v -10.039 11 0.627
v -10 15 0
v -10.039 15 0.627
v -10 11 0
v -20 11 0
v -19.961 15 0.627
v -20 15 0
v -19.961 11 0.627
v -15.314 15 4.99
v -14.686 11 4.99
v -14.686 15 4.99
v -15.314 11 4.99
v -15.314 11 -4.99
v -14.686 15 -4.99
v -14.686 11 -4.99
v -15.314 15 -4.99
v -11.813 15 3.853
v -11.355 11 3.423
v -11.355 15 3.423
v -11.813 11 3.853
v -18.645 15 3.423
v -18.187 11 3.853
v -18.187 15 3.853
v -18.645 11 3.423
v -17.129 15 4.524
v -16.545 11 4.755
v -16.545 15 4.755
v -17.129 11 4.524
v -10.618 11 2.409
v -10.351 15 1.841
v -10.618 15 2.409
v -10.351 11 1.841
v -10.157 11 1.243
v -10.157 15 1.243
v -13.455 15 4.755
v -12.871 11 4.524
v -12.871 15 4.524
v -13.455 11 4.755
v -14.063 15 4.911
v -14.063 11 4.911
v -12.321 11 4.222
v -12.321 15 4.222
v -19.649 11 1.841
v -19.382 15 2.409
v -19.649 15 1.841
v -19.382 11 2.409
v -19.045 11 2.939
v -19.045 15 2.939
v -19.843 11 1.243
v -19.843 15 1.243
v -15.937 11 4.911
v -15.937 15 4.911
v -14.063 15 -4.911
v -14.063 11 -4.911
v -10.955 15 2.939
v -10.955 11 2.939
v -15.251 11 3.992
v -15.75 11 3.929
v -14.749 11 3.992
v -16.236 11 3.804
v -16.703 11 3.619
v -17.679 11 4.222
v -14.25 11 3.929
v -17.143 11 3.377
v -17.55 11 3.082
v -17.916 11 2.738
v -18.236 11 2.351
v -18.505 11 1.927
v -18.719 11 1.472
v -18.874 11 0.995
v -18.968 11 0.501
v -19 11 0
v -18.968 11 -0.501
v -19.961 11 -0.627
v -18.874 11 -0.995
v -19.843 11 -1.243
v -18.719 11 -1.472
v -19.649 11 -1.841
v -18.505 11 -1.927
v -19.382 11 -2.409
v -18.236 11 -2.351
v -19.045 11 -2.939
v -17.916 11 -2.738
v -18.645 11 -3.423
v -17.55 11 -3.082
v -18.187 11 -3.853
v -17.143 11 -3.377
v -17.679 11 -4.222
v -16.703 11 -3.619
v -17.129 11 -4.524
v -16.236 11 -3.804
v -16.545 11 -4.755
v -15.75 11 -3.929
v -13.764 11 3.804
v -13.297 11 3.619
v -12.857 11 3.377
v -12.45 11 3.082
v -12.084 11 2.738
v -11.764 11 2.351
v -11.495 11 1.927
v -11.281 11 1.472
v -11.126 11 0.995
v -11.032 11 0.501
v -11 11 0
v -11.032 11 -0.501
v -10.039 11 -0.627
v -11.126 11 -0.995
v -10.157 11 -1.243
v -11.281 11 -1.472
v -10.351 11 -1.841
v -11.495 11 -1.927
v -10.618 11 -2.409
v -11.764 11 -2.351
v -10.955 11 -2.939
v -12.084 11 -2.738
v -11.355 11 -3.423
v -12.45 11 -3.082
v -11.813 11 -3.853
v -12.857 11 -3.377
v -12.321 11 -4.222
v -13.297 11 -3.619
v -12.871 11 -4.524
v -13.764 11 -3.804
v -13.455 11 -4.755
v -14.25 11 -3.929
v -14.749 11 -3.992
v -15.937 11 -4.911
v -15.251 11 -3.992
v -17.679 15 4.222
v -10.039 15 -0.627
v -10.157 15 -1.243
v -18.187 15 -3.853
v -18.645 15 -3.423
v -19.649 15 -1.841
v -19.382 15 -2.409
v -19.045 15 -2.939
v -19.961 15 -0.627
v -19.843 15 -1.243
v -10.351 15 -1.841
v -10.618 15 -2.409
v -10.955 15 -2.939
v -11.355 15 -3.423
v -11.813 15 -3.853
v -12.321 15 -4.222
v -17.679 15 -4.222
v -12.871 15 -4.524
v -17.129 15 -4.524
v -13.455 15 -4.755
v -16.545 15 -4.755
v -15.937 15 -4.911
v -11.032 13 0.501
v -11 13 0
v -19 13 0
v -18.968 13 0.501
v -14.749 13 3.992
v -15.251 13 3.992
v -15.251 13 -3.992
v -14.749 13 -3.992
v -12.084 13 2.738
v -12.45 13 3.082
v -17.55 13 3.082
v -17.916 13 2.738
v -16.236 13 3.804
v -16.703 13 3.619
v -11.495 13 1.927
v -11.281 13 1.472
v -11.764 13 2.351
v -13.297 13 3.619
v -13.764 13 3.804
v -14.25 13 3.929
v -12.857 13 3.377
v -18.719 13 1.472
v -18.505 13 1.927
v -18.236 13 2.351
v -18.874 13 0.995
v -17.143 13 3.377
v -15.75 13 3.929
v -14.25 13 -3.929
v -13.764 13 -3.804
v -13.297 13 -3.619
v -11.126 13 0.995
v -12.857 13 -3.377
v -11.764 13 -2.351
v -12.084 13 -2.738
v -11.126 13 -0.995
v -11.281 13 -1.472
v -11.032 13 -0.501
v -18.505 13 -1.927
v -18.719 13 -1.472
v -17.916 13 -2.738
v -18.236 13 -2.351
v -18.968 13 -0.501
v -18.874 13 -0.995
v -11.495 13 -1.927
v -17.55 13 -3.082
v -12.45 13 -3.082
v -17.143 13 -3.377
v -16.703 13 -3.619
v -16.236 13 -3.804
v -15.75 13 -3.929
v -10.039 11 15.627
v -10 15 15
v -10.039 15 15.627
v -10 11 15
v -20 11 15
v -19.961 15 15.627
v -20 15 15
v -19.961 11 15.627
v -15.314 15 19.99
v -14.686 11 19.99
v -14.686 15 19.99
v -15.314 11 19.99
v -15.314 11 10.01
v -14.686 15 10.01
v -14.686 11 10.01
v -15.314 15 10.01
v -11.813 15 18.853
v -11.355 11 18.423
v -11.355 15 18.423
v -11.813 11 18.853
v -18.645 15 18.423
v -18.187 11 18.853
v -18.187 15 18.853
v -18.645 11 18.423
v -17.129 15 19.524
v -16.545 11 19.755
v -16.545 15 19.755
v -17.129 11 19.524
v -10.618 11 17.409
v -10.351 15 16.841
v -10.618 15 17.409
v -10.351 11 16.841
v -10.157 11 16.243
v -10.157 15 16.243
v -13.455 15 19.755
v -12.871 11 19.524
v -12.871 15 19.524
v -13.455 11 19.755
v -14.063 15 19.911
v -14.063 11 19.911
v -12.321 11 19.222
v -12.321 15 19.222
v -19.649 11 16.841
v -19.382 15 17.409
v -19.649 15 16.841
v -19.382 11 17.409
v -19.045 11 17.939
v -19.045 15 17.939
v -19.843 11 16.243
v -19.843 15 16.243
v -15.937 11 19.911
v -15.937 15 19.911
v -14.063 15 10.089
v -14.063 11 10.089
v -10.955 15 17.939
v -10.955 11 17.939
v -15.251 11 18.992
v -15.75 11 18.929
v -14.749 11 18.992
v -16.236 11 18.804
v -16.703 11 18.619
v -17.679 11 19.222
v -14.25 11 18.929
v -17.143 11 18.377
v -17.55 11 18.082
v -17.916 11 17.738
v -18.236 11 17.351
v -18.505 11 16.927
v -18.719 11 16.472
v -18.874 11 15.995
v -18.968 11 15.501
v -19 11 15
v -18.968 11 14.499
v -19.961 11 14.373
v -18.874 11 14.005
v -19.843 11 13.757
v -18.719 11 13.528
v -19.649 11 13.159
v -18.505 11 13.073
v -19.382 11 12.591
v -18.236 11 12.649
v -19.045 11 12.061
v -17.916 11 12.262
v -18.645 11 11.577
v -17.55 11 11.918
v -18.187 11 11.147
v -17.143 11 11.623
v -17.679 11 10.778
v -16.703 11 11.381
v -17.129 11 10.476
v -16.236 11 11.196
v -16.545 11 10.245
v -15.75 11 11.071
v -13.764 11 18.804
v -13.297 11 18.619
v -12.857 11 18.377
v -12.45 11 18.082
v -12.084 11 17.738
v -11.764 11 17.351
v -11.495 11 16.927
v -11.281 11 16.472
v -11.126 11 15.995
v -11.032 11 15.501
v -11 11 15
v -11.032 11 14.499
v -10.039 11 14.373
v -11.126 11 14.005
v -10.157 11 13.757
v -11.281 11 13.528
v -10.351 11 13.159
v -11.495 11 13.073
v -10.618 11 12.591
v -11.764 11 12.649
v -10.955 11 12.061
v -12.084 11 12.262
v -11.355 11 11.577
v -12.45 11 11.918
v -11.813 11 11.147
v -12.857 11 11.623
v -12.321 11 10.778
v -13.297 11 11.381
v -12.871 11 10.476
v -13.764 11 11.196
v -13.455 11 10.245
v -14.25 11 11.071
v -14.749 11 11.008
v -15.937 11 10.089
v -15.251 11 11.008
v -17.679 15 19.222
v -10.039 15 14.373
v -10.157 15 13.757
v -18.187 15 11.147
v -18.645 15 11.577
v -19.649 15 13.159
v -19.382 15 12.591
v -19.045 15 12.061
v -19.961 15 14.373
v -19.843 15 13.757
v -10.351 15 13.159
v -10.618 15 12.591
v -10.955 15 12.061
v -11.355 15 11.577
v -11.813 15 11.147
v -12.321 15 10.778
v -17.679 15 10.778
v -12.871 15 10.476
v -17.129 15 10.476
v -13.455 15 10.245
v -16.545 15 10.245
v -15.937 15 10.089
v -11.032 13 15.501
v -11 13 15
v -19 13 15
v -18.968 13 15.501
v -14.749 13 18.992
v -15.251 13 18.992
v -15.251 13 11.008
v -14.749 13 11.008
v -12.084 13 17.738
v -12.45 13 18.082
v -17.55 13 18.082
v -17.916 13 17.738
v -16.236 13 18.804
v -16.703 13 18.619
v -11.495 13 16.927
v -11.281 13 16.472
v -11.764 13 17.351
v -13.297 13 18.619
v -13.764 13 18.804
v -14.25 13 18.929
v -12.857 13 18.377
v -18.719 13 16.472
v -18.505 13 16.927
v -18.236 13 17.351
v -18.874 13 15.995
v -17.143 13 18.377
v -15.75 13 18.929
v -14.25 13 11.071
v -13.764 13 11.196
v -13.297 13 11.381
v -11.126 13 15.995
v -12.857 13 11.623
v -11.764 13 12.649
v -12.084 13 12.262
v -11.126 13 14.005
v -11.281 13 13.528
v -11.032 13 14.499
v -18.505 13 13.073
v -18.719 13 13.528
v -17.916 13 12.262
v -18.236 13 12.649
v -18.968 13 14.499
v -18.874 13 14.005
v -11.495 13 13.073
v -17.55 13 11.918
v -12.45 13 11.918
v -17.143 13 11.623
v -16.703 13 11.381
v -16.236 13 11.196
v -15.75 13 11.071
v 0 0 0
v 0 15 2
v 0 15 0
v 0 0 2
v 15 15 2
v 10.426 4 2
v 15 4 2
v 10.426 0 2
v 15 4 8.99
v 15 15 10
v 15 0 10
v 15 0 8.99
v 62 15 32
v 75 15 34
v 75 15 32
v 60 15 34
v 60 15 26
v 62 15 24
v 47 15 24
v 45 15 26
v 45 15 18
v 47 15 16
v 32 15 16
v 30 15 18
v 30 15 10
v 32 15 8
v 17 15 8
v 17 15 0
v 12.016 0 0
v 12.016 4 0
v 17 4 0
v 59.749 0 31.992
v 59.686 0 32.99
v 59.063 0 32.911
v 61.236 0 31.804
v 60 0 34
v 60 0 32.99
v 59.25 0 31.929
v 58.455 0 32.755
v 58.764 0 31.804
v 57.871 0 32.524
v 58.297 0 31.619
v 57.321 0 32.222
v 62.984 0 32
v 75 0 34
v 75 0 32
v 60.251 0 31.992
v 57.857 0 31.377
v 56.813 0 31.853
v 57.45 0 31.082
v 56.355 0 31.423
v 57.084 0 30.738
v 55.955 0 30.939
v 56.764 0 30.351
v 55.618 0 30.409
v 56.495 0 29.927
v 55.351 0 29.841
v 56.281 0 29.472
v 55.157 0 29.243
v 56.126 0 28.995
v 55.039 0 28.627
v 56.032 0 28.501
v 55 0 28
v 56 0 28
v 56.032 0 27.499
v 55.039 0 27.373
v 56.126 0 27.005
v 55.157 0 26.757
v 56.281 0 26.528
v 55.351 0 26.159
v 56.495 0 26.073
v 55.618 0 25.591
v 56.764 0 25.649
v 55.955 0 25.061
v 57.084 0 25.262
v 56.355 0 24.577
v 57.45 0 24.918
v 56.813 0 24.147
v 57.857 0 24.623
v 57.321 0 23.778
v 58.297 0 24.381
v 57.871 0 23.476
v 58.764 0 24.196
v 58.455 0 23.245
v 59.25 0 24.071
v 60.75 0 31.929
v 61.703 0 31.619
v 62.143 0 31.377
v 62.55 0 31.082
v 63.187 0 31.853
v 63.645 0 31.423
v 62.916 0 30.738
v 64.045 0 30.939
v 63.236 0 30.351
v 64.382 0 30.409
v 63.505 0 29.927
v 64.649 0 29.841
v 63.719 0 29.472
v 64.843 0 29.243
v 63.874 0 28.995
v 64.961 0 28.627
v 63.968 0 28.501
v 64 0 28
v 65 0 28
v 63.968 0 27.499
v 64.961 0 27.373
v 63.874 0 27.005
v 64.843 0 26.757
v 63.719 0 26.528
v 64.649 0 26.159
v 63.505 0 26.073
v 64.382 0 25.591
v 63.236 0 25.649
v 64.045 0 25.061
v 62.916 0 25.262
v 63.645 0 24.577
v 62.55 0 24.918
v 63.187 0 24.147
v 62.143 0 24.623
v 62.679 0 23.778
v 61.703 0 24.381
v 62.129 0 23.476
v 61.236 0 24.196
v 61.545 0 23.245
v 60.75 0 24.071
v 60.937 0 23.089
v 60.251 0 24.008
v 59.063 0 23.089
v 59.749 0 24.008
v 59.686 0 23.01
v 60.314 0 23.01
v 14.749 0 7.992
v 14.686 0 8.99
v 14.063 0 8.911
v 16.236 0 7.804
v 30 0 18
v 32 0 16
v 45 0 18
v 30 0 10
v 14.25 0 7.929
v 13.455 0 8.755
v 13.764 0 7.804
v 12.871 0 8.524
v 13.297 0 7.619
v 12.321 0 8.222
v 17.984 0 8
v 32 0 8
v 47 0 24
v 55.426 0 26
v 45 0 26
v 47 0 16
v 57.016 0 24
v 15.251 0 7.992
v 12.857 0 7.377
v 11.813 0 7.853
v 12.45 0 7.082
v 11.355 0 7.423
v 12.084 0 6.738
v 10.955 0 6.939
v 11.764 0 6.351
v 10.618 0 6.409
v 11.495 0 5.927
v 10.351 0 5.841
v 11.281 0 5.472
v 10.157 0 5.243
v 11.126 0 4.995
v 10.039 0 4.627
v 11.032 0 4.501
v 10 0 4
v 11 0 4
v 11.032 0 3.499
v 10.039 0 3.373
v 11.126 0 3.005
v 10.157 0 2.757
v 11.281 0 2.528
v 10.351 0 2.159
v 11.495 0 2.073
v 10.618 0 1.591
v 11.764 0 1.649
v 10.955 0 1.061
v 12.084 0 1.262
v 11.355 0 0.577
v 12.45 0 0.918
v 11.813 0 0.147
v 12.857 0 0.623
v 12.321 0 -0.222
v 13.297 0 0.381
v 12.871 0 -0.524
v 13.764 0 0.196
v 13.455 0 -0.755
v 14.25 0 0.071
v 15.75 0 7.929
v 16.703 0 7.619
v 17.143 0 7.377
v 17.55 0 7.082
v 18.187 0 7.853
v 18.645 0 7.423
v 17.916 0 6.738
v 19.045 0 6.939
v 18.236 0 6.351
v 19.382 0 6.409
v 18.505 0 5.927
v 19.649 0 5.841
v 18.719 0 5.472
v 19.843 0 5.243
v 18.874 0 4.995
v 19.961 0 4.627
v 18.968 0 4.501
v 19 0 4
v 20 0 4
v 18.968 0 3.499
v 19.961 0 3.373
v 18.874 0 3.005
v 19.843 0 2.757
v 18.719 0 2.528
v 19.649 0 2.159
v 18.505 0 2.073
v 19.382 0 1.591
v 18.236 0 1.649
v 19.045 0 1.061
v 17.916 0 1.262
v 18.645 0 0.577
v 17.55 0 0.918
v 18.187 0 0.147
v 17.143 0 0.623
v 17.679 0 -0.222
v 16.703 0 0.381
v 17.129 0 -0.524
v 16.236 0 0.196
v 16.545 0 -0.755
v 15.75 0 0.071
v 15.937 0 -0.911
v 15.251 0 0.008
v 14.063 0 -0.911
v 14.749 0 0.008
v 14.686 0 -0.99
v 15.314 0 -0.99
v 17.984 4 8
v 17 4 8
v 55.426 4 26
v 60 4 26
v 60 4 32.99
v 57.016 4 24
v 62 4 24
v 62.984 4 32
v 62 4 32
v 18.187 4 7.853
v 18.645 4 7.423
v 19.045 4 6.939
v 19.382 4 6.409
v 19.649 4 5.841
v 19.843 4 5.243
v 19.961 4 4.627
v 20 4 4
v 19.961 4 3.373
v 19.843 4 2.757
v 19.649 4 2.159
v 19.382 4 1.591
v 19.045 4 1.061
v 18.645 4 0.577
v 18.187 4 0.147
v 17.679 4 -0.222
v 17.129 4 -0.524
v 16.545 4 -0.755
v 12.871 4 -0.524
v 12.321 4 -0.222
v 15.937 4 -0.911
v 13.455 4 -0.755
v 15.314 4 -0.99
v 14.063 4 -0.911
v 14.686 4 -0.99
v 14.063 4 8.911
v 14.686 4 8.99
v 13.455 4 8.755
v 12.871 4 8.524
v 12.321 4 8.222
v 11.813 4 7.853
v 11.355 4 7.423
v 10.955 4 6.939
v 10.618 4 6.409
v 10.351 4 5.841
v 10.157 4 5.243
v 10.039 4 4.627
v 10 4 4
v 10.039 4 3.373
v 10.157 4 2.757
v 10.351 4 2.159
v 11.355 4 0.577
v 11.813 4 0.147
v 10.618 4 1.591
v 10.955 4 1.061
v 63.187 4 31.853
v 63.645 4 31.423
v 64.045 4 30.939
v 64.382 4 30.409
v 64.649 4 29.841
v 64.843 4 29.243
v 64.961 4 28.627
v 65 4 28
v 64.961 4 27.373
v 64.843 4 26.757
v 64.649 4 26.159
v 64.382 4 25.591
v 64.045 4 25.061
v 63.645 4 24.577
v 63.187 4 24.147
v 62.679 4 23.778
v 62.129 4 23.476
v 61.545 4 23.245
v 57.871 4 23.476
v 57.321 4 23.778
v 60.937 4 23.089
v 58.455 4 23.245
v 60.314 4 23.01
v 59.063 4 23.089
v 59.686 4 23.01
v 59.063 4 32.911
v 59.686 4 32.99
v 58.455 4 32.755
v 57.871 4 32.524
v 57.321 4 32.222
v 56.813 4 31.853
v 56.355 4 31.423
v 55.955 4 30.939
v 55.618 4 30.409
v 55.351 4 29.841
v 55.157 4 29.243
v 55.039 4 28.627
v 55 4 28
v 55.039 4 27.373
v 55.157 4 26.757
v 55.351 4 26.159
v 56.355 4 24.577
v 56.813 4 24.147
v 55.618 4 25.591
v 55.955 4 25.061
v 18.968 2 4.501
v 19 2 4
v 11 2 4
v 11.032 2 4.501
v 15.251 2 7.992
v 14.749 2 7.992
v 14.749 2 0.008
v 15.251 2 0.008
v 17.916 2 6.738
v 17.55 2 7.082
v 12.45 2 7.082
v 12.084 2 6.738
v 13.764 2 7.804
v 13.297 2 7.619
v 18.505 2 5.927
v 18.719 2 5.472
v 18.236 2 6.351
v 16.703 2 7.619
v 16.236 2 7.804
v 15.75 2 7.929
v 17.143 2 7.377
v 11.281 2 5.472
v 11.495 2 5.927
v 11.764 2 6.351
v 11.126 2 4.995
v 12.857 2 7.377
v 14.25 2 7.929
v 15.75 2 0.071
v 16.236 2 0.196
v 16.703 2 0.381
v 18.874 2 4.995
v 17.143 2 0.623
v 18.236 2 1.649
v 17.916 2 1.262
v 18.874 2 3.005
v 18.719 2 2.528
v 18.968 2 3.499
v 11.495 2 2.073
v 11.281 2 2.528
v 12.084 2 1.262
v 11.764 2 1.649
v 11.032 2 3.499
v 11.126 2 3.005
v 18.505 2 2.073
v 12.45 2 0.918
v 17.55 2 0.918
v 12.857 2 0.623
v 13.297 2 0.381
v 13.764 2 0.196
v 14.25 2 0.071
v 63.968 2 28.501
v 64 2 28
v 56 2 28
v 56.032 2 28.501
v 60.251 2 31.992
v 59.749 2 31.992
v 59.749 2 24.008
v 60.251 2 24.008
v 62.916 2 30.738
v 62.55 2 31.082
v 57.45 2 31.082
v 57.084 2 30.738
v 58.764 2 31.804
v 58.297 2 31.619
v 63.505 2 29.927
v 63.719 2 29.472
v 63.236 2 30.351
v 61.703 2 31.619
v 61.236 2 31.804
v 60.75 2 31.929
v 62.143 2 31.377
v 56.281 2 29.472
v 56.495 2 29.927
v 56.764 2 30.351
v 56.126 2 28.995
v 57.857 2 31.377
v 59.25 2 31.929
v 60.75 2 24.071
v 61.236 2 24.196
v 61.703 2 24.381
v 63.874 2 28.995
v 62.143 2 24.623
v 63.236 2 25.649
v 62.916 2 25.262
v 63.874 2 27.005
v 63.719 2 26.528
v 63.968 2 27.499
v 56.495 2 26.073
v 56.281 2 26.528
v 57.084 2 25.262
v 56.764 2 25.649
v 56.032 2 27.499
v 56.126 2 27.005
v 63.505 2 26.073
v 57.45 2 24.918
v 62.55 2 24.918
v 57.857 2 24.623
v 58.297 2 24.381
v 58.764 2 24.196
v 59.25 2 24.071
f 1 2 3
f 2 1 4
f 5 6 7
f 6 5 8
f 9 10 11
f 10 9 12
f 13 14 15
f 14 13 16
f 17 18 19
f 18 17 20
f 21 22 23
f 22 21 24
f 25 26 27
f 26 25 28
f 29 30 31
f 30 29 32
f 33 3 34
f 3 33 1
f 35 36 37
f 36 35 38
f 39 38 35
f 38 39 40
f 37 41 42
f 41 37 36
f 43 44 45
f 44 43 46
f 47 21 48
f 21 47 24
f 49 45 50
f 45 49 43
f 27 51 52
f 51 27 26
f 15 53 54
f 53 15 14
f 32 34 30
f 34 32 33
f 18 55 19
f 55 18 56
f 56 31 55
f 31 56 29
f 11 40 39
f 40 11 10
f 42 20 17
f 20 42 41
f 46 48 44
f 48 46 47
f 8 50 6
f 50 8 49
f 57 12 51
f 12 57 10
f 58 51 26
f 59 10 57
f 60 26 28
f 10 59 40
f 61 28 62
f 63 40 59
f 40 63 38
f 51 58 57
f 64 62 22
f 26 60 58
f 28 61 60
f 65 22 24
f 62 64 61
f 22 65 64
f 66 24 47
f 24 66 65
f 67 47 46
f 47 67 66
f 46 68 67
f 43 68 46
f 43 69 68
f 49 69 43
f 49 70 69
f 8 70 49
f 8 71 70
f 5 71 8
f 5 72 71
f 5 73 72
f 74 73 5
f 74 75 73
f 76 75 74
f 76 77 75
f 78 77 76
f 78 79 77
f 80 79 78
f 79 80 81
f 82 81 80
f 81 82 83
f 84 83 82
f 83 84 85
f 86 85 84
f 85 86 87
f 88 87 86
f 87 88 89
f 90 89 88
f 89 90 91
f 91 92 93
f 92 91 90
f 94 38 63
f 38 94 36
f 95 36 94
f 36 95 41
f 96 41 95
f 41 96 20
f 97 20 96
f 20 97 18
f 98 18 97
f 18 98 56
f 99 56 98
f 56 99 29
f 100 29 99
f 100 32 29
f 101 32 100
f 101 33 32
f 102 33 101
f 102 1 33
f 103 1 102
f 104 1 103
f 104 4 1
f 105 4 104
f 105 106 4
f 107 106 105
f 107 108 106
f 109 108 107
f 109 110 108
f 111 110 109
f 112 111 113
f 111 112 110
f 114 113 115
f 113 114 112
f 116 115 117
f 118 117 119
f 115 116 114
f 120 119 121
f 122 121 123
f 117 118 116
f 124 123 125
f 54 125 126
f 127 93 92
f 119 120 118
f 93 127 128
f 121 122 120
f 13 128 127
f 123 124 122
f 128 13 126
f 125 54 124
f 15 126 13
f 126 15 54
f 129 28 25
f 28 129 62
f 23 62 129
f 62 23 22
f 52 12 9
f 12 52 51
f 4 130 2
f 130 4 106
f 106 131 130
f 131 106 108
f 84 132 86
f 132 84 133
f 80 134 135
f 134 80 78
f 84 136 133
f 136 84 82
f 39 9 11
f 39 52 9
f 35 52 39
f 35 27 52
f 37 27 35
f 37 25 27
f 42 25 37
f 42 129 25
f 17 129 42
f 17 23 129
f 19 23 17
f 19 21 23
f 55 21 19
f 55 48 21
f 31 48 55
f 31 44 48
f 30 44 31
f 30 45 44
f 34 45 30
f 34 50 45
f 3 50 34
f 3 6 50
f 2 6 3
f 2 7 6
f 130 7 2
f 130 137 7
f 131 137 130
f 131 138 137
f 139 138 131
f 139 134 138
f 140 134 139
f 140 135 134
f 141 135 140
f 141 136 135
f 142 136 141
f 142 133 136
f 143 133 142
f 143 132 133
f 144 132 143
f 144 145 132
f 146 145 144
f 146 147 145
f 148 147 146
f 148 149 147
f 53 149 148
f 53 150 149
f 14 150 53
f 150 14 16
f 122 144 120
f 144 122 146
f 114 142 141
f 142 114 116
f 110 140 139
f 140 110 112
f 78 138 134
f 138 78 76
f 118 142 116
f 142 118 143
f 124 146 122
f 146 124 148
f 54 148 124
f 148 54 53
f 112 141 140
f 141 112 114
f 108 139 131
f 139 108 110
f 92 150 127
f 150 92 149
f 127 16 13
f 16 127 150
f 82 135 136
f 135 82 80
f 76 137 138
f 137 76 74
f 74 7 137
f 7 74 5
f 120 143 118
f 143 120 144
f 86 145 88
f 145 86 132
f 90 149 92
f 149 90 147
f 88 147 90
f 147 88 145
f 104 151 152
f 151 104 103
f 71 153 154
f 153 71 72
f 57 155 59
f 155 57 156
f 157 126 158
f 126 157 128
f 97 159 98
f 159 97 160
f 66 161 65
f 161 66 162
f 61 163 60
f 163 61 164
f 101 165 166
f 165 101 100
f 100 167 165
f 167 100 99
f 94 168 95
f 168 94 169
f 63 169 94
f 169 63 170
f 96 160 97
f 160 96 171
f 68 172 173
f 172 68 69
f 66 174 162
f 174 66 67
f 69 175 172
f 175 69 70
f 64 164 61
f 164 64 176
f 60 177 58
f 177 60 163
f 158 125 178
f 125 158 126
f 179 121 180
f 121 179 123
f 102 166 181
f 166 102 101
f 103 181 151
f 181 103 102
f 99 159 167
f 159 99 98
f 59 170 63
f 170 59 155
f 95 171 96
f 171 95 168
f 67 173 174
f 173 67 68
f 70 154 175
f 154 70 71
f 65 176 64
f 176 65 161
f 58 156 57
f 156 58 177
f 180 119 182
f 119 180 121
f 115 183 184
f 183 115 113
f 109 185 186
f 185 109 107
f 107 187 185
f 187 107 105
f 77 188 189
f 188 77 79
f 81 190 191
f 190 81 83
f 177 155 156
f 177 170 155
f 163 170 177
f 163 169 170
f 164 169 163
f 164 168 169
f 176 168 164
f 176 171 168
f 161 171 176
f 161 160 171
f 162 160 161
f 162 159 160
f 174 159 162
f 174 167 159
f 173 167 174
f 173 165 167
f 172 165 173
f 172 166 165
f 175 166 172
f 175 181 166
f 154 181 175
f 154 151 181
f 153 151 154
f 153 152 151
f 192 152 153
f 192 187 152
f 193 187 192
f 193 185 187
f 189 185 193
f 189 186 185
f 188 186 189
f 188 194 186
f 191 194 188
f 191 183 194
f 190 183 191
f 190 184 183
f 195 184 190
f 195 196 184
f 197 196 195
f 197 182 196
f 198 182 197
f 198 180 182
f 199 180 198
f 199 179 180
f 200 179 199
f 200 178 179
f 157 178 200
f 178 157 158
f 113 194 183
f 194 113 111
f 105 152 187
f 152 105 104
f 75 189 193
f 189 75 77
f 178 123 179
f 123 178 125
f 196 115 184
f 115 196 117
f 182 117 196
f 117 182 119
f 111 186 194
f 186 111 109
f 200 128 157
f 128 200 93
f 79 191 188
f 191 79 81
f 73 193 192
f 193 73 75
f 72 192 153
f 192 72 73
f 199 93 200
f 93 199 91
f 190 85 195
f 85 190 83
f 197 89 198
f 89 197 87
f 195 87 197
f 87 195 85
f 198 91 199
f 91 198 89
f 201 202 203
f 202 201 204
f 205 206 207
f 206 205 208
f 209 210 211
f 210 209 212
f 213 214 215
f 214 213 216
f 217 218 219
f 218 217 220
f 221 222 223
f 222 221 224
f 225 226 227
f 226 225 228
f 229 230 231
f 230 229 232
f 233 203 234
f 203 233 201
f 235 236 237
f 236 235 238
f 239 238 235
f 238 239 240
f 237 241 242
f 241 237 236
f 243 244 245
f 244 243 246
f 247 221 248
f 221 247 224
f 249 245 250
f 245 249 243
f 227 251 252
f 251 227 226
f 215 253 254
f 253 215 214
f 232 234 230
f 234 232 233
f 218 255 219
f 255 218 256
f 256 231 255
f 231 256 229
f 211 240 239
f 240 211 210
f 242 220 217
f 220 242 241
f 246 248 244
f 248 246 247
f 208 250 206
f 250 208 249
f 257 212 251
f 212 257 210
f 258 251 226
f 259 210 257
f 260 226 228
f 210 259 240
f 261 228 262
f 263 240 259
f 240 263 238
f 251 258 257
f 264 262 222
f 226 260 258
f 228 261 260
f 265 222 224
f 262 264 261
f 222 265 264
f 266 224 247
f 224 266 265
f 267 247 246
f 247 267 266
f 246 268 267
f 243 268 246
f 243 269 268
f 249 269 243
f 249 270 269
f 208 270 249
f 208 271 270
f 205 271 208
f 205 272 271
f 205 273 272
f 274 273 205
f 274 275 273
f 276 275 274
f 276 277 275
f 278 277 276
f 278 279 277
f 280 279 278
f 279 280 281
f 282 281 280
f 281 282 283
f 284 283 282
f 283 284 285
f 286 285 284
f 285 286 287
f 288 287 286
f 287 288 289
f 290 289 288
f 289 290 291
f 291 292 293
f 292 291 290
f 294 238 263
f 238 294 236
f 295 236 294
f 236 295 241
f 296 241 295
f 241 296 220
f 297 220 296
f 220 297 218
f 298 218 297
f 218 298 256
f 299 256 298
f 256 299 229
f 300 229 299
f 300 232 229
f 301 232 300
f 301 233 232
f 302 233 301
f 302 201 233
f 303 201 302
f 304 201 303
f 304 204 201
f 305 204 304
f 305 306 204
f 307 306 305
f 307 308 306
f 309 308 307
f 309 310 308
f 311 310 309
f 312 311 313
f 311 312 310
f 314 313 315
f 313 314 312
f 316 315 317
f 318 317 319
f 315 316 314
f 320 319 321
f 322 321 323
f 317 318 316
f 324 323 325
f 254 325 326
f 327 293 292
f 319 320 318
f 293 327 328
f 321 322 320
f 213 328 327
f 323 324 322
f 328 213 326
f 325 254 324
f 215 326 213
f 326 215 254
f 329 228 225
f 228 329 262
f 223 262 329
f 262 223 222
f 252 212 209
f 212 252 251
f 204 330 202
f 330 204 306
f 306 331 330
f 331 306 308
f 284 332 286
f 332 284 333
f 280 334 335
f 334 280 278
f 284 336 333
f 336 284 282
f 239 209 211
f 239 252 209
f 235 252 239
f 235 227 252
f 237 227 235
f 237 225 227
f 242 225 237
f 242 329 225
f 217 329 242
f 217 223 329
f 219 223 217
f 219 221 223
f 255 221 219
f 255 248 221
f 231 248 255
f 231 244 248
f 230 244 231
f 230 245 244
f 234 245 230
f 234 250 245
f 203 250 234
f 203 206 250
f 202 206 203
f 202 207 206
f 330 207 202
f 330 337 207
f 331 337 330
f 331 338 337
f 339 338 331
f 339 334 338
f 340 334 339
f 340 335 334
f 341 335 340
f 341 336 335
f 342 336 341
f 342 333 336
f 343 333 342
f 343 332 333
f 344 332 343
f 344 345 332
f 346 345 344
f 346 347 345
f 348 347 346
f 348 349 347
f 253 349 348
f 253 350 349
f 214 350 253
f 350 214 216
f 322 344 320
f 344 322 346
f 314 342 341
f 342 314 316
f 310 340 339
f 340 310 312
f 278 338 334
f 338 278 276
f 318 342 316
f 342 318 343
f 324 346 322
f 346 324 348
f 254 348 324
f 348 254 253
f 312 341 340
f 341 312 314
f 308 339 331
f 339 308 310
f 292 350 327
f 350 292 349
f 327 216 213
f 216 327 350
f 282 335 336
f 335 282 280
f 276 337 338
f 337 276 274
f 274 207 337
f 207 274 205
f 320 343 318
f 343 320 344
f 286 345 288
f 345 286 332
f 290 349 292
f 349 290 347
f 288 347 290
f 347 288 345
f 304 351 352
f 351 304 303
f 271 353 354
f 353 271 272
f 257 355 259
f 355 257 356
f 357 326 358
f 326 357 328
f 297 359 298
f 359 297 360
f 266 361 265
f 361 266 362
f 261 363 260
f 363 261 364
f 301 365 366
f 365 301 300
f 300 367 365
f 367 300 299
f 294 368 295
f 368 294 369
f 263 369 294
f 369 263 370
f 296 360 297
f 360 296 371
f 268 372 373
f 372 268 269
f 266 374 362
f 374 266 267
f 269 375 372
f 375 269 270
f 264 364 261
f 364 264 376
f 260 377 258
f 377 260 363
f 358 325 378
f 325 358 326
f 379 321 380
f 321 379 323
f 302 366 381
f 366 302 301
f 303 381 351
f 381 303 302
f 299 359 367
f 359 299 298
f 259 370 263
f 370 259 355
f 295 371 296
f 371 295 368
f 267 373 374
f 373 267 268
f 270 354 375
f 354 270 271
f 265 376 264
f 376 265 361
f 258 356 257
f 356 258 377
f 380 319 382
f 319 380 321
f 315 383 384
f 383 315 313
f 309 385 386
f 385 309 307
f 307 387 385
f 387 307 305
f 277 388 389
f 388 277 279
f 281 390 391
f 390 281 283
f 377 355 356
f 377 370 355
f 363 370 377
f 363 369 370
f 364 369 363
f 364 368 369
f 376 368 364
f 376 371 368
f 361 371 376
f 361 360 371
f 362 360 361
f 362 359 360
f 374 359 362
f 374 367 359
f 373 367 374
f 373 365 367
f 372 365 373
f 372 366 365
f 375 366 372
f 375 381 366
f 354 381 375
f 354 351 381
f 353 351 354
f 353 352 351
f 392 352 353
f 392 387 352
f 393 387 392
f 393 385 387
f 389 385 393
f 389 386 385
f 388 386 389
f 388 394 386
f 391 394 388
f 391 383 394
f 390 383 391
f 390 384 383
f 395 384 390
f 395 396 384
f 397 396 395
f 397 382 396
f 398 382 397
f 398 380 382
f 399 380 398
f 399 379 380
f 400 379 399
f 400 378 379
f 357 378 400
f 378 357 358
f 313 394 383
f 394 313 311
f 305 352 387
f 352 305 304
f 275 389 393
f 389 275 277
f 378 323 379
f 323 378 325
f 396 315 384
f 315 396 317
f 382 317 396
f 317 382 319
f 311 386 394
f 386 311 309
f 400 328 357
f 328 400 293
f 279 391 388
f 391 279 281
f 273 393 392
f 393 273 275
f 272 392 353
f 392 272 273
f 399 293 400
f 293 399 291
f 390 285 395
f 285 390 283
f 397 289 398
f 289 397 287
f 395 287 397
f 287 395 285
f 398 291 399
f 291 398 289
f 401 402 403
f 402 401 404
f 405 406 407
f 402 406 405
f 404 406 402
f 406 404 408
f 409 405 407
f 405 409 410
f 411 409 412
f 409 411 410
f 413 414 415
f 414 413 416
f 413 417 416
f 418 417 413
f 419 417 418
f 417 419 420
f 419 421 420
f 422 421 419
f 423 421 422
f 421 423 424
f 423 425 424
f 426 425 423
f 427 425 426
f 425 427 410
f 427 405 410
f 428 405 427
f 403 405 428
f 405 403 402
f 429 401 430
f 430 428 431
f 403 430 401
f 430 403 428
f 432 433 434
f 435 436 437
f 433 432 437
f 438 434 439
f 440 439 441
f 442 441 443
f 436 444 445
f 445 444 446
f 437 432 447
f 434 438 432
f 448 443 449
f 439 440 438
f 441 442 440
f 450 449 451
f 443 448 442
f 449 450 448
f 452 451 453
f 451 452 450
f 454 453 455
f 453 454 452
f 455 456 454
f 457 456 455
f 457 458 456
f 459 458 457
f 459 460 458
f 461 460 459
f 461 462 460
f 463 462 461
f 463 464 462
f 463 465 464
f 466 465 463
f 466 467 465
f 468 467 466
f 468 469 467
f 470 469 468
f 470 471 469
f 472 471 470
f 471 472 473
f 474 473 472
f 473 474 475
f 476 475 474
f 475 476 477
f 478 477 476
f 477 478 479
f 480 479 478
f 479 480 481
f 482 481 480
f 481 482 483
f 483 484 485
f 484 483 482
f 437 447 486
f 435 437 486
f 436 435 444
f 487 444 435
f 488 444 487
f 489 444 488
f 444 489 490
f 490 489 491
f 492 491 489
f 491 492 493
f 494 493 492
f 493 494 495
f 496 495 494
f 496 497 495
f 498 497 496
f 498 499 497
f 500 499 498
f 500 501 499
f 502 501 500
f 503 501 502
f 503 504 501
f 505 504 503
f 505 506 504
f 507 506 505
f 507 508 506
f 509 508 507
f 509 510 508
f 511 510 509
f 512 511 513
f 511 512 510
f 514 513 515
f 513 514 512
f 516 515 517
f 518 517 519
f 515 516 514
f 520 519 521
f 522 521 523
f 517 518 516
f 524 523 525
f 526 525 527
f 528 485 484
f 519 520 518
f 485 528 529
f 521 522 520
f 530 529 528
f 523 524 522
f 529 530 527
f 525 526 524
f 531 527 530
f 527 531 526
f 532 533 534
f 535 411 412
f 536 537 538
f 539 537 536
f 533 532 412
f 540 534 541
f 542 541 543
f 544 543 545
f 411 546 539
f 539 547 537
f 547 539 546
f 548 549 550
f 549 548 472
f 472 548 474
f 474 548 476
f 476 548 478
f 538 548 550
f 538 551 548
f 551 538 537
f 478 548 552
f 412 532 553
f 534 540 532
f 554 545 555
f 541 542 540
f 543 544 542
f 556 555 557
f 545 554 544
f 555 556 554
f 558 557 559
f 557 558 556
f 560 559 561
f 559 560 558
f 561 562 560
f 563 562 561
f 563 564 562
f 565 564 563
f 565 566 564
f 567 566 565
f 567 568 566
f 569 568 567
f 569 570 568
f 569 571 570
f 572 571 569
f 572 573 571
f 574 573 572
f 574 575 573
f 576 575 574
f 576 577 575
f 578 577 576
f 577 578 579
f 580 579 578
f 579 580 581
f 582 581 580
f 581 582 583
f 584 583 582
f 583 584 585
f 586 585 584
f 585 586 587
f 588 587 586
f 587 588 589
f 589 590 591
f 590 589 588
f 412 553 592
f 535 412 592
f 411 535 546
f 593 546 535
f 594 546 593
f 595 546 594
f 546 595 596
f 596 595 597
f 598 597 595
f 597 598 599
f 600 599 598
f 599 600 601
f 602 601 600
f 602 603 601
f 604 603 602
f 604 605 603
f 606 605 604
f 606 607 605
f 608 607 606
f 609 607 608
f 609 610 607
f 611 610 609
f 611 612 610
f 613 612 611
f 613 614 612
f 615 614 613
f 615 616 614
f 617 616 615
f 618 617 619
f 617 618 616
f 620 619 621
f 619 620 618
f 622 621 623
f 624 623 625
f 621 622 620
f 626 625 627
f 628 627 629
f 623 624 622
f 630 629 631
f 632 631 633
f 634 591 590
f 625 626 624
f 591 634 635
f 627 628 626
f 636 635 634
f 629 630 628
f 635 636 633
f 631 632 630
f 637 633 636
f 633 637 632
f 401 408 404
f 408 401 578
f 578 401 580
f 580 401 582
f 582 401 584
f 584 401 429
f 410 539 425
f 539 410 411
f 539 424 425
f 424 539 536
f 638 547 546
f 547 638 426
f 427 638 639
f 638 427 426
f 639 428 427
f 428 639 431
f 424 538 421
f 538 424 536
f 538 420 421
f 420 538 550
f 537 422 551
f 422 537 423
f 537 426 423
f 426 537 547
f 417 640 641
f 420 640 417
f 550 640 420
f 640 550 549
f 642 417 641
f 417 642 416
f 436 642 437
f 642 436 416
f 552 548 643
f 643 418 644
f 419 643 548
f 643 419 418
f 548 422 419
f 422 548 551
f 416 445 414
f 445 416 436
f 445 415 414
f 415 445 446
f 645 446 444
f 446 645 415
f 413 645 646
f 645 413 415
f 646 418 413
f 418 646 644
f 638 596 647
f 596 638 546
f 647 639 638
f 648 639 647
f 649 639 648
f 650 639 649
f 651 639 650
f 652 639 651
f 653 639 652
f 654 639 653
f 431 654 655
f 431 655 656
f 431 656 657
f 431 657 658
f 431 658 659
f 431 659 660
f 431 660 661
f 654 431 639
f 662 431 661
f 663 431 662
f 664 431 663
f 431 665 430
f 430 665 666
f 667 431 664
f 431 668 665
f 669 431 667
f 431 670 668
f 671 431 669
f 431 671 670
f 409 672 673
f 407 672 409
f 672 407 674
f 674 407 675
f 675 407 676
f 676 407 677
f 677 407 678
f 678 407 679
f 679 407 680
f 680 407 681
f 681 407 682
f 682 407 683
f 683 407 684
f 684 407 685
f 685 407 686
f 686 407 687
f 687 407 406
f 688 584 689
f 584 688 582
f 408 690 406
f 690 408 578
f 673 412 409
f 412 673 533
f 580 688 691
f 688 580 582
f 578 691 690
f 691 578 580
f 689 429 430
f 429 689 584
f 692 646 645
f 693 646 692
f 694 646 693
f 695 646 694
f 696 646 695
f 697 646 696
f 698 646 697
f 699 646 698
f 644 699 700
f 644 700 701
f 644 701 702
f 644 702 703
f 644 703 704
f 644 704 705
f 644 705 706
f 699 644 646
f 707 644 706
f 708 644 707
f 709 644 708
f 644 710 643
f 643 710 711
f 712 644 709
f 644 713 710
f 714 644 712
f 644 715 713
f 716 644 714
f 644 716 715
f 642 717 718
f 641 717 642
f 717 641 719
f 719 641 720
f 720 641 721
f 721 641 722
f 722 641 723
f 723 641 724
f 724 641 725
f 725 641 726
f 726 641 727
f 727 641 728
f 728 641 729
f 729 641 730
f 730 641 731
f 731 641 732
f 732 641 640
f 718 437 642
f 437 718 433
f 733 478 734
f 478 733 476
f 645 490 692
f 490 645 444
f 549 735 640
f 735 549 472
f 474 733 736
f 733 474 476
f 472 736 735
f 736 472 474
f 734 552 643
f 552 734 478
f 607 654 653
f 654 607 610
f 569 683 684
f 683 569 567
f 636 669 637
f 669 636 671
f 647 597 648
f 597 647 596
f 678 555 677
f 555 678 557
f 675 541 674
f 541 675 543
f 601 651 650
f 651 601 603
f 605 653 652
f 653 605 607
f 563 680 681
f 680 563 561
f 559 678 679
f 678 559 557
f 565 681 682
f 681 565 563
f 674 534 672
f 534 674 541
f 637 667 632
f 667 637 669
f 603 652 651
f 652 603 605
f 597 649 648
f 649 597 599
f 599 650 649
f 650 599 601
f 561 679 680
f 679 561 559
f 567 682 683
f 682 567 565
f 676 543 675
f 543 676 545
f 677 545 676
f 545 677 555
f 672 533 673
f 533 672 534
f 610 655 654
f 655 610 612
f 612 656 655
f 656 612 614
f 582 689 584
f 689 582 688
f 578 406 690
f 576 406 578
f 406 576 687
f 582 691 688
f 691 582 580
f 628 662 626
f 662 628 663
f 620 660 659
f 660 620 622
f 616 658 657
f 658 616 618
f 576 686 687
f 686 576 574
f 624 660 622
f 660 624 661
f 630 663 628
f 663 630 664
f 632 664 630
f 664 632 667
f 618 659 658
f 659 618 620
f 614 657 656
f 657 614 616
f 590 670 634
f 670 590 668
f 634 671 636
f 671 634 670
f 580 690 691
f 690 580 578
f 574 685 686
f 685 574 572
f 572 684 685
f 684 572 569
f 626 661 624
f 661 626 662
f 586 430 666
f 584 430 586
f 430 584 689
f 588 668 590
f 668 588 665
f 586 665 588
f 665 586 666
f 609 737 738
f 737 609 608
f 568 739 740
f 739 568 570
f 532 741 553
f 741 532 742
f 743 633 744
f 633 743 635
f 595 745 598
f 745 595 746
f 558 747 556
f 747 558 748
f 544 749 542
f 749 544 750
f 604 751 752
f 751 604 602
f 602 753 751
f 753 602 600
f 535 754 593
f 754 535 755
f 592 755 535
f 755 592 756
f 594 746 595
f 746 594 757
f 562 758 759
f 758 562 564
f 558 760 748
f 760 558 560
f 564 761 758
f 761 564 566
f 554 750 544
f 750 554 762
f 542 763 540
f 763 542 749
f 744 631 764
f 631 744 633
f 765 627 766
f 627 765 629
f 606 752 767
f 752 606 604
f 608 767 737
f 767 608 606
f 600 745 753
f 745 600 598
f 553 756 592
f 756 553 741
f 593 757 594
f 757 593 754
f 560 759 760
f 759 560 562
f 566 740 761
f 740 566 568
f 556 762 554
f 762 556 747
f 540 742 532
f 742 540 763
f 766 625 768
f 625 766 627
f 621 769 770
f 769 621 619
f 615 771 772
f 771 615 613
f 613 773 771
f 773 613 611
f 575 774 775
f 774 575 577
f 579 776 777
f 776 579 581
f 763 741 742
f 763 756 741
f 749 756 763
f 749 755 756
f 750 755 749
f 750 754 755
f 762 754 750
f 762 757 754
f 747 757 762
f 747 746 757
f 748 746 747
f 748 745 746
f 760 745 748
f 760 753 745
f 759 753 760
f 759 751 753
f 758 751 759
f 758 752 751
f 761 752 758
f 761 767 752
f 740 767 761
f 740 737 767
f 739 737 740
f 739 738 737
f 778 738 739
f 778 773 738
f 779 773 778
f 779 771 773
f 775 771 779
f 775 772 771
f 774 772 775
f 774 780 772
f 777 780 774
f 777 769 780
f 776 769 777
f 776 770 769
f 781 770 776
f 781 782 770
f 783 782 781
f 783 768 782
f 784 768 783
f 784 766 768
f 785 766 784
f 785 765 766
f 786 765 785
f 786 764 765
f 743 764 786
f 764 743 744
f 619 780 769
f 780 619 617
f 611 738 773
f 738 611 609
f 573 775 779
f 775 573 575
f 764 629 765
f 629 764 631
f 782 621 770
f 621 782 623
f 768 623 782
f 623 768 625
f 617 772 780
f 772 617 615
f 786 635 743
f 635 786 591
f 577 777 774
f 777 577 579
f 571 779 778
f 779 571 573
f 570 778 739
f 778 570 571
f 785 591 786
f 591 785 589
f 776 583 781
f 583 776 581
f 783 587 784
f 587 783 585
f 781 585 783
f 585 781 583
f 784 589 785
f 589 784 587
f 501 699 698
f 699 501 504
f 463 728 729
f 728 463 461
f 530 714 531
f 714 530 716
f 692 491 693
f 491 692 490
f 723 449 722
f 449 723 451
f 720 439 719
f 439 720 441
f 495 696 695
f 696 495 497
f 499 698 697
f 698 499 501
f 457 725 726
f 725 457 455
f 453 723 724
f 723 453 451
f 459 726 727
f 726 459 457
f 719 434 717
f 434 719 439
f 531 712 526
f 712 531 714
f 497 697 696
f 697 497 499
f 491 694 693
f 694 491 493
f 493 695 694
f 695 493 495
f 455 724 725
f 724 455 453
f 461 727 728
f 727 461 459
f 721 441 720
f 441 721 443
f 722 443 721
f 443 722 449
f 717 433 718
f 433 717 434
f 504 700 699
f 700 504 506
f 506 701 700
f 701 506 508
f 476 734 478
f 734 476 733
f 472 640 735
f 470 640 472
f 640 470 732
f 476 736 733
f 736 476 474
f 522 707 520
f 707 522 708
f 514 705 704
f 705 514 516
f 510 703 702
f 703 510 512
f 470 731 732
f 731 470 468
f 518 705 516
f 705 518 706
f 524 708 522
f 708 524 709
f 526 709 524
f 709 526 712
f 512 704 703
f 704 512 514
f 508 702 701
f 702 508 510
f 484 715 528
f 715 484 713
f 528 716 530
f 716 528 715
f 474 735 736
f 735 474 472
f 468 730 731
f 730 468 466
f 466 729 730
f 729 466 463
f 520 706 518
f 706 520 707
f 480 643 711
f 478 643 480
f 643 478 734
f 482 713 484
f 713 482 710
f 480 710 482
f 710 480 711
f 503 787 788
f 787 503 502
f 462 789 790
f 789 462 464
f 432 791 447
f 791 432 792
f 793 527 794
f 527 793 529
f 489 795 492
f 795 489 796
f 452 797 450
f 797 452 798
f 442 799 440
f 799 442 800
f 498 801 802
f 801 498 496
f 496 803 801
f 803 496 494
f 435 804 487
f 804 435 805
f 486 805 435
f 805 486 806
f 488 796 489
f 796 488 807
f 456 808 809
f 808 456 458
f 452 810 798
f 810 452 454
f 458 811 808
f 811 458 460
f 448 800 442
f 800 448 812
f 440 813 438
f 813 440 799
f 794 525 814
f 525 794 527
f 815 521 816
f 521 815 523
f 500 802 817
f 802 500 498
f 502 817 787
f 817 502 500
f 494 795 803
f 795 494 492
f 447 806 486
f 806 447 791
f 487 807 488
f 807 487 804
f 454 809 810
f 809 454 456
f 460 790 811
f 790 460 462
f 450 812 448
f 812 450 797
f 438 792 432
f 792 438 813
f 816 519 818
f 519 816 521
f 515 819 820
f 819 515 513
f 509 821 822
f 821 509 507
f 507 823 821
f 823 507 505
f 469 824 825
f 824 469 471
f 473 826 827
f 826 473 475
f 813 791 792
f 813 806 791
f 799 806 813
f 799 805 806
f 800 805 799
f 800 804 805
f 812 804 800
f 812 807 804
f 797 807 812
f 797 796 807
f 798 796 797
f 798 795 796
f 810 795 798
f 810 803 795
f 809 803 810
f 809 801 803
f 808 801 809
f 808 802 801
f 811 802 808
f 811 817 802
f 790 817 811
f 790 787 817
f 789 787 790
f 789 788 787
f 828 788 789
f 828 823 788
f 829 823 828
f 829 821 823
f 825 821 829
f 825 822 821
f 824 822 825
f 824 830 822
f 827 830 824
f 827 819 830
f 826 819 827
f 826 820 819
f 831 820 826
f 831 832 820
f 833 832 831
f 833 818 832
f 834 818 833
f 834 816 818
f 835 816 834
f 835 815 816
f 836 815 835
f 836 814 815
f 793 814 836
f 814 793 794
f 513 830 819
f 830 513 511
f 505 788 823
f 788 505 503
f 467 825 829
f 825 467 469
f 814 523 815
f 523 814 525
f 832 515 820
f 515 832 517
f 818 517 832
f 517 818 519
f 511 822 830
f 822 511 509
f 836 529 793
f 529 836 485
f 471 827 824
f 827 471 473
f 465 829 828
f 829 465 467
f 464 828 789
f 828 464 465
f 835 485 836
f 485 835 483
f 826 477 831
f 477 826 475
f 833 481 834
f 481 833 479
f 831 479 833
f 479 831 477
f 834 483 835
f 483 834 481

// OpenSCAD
// Stairs parameters
numSteps = 5;
stepHeight = 8;  // mm
width = 15;         // mm
stepDepth = 15; // mm
stepThickness = 2;  // mm

// Magnet parameters
magnetDiameter = 8;  // mm
magnetDepth = 2;  // mm
magnetMargin = 2;  // mm (additional diameter and depth)

// Module to create magnet housing
module magnetHousing(posX, posZ, withHollow=true) {
    translate([posX, magnetDepth+magnetMargin, posZ])
        rotate([90, 0, 0])
            difference() {
                // Large cylinder with margin
                cylinder(h = magnetDepth + magnetMargin, d = magnetDiameter + magnetMargin, $fn=50);

                // Hollowed cylinder for the magnet
                if (withHollow) {
                    translate([0, 0, magnetMargin])
                        cylinder(h = magnetDepth, d = magnetDiameter, $fn=50);
                }
            }
}

// Stairs generation
union() {
    // Main staircase
    difference() {
        for (i = [0:numSteps-1]) {
            // Step
            translate([i * stepDepth, 0, i * stepHeight])
                cube([stepDepth, width, stepThickness]);

            // Riser
            if (i > 0) {
                translate([i * stepDepth, 0, (i - 1) * stepHeight ])
                    cube([stepThickness, width, stepHeight + stepThickness]);
            }
        }

        magnetHousing(stepDepth, stepHeight / 2, false);
        magnetHousing((numSteps - 1) * stepDepth, (numSteps - 2) * stepHeight + stepHeight / 2, false);
    }

    // Magnet housings
    // First housing (first riser)
    magnetHousing(stepDepth, stepHeight / 2);

    // Last housing (second to last riser)
    magnetHousing((numSteps - 1) * stepDepth, (numSteps - 2) * stepHeight + stepHeight / 2);
}

// Extra detached magnet housings
// Positioned in negative X axis, one above the other with 5mm separation
translate([-(magnetDiameter + magnetMargin + 5), width, 0])
    rotate([90, 0, 0])
        difference() {
            cylinder(h = magnetDepth + magnetMargin, d = magnetDiameter + magnetMargin, $fn=50);
            translate([0, 0, magnetMargin])
                cylinder(h = magnetDepth, d = magnetDiameter, $fn=50);
        }

translate([-(magnetDiameter + magnetMargin + 5), width, magnetDiameter + magnetMargin + 5])
    rotate([90, 0, 0])
        difference() {
            cylinder(h = magnetDepth + magnetMargin, d = magnetDiameter + magnetMargin, $fn=50);
            translate([0, 0, magnetMargin])
                cylinder(h = magnetDepth, d = magnetDiameter, $fn=50);
        }
